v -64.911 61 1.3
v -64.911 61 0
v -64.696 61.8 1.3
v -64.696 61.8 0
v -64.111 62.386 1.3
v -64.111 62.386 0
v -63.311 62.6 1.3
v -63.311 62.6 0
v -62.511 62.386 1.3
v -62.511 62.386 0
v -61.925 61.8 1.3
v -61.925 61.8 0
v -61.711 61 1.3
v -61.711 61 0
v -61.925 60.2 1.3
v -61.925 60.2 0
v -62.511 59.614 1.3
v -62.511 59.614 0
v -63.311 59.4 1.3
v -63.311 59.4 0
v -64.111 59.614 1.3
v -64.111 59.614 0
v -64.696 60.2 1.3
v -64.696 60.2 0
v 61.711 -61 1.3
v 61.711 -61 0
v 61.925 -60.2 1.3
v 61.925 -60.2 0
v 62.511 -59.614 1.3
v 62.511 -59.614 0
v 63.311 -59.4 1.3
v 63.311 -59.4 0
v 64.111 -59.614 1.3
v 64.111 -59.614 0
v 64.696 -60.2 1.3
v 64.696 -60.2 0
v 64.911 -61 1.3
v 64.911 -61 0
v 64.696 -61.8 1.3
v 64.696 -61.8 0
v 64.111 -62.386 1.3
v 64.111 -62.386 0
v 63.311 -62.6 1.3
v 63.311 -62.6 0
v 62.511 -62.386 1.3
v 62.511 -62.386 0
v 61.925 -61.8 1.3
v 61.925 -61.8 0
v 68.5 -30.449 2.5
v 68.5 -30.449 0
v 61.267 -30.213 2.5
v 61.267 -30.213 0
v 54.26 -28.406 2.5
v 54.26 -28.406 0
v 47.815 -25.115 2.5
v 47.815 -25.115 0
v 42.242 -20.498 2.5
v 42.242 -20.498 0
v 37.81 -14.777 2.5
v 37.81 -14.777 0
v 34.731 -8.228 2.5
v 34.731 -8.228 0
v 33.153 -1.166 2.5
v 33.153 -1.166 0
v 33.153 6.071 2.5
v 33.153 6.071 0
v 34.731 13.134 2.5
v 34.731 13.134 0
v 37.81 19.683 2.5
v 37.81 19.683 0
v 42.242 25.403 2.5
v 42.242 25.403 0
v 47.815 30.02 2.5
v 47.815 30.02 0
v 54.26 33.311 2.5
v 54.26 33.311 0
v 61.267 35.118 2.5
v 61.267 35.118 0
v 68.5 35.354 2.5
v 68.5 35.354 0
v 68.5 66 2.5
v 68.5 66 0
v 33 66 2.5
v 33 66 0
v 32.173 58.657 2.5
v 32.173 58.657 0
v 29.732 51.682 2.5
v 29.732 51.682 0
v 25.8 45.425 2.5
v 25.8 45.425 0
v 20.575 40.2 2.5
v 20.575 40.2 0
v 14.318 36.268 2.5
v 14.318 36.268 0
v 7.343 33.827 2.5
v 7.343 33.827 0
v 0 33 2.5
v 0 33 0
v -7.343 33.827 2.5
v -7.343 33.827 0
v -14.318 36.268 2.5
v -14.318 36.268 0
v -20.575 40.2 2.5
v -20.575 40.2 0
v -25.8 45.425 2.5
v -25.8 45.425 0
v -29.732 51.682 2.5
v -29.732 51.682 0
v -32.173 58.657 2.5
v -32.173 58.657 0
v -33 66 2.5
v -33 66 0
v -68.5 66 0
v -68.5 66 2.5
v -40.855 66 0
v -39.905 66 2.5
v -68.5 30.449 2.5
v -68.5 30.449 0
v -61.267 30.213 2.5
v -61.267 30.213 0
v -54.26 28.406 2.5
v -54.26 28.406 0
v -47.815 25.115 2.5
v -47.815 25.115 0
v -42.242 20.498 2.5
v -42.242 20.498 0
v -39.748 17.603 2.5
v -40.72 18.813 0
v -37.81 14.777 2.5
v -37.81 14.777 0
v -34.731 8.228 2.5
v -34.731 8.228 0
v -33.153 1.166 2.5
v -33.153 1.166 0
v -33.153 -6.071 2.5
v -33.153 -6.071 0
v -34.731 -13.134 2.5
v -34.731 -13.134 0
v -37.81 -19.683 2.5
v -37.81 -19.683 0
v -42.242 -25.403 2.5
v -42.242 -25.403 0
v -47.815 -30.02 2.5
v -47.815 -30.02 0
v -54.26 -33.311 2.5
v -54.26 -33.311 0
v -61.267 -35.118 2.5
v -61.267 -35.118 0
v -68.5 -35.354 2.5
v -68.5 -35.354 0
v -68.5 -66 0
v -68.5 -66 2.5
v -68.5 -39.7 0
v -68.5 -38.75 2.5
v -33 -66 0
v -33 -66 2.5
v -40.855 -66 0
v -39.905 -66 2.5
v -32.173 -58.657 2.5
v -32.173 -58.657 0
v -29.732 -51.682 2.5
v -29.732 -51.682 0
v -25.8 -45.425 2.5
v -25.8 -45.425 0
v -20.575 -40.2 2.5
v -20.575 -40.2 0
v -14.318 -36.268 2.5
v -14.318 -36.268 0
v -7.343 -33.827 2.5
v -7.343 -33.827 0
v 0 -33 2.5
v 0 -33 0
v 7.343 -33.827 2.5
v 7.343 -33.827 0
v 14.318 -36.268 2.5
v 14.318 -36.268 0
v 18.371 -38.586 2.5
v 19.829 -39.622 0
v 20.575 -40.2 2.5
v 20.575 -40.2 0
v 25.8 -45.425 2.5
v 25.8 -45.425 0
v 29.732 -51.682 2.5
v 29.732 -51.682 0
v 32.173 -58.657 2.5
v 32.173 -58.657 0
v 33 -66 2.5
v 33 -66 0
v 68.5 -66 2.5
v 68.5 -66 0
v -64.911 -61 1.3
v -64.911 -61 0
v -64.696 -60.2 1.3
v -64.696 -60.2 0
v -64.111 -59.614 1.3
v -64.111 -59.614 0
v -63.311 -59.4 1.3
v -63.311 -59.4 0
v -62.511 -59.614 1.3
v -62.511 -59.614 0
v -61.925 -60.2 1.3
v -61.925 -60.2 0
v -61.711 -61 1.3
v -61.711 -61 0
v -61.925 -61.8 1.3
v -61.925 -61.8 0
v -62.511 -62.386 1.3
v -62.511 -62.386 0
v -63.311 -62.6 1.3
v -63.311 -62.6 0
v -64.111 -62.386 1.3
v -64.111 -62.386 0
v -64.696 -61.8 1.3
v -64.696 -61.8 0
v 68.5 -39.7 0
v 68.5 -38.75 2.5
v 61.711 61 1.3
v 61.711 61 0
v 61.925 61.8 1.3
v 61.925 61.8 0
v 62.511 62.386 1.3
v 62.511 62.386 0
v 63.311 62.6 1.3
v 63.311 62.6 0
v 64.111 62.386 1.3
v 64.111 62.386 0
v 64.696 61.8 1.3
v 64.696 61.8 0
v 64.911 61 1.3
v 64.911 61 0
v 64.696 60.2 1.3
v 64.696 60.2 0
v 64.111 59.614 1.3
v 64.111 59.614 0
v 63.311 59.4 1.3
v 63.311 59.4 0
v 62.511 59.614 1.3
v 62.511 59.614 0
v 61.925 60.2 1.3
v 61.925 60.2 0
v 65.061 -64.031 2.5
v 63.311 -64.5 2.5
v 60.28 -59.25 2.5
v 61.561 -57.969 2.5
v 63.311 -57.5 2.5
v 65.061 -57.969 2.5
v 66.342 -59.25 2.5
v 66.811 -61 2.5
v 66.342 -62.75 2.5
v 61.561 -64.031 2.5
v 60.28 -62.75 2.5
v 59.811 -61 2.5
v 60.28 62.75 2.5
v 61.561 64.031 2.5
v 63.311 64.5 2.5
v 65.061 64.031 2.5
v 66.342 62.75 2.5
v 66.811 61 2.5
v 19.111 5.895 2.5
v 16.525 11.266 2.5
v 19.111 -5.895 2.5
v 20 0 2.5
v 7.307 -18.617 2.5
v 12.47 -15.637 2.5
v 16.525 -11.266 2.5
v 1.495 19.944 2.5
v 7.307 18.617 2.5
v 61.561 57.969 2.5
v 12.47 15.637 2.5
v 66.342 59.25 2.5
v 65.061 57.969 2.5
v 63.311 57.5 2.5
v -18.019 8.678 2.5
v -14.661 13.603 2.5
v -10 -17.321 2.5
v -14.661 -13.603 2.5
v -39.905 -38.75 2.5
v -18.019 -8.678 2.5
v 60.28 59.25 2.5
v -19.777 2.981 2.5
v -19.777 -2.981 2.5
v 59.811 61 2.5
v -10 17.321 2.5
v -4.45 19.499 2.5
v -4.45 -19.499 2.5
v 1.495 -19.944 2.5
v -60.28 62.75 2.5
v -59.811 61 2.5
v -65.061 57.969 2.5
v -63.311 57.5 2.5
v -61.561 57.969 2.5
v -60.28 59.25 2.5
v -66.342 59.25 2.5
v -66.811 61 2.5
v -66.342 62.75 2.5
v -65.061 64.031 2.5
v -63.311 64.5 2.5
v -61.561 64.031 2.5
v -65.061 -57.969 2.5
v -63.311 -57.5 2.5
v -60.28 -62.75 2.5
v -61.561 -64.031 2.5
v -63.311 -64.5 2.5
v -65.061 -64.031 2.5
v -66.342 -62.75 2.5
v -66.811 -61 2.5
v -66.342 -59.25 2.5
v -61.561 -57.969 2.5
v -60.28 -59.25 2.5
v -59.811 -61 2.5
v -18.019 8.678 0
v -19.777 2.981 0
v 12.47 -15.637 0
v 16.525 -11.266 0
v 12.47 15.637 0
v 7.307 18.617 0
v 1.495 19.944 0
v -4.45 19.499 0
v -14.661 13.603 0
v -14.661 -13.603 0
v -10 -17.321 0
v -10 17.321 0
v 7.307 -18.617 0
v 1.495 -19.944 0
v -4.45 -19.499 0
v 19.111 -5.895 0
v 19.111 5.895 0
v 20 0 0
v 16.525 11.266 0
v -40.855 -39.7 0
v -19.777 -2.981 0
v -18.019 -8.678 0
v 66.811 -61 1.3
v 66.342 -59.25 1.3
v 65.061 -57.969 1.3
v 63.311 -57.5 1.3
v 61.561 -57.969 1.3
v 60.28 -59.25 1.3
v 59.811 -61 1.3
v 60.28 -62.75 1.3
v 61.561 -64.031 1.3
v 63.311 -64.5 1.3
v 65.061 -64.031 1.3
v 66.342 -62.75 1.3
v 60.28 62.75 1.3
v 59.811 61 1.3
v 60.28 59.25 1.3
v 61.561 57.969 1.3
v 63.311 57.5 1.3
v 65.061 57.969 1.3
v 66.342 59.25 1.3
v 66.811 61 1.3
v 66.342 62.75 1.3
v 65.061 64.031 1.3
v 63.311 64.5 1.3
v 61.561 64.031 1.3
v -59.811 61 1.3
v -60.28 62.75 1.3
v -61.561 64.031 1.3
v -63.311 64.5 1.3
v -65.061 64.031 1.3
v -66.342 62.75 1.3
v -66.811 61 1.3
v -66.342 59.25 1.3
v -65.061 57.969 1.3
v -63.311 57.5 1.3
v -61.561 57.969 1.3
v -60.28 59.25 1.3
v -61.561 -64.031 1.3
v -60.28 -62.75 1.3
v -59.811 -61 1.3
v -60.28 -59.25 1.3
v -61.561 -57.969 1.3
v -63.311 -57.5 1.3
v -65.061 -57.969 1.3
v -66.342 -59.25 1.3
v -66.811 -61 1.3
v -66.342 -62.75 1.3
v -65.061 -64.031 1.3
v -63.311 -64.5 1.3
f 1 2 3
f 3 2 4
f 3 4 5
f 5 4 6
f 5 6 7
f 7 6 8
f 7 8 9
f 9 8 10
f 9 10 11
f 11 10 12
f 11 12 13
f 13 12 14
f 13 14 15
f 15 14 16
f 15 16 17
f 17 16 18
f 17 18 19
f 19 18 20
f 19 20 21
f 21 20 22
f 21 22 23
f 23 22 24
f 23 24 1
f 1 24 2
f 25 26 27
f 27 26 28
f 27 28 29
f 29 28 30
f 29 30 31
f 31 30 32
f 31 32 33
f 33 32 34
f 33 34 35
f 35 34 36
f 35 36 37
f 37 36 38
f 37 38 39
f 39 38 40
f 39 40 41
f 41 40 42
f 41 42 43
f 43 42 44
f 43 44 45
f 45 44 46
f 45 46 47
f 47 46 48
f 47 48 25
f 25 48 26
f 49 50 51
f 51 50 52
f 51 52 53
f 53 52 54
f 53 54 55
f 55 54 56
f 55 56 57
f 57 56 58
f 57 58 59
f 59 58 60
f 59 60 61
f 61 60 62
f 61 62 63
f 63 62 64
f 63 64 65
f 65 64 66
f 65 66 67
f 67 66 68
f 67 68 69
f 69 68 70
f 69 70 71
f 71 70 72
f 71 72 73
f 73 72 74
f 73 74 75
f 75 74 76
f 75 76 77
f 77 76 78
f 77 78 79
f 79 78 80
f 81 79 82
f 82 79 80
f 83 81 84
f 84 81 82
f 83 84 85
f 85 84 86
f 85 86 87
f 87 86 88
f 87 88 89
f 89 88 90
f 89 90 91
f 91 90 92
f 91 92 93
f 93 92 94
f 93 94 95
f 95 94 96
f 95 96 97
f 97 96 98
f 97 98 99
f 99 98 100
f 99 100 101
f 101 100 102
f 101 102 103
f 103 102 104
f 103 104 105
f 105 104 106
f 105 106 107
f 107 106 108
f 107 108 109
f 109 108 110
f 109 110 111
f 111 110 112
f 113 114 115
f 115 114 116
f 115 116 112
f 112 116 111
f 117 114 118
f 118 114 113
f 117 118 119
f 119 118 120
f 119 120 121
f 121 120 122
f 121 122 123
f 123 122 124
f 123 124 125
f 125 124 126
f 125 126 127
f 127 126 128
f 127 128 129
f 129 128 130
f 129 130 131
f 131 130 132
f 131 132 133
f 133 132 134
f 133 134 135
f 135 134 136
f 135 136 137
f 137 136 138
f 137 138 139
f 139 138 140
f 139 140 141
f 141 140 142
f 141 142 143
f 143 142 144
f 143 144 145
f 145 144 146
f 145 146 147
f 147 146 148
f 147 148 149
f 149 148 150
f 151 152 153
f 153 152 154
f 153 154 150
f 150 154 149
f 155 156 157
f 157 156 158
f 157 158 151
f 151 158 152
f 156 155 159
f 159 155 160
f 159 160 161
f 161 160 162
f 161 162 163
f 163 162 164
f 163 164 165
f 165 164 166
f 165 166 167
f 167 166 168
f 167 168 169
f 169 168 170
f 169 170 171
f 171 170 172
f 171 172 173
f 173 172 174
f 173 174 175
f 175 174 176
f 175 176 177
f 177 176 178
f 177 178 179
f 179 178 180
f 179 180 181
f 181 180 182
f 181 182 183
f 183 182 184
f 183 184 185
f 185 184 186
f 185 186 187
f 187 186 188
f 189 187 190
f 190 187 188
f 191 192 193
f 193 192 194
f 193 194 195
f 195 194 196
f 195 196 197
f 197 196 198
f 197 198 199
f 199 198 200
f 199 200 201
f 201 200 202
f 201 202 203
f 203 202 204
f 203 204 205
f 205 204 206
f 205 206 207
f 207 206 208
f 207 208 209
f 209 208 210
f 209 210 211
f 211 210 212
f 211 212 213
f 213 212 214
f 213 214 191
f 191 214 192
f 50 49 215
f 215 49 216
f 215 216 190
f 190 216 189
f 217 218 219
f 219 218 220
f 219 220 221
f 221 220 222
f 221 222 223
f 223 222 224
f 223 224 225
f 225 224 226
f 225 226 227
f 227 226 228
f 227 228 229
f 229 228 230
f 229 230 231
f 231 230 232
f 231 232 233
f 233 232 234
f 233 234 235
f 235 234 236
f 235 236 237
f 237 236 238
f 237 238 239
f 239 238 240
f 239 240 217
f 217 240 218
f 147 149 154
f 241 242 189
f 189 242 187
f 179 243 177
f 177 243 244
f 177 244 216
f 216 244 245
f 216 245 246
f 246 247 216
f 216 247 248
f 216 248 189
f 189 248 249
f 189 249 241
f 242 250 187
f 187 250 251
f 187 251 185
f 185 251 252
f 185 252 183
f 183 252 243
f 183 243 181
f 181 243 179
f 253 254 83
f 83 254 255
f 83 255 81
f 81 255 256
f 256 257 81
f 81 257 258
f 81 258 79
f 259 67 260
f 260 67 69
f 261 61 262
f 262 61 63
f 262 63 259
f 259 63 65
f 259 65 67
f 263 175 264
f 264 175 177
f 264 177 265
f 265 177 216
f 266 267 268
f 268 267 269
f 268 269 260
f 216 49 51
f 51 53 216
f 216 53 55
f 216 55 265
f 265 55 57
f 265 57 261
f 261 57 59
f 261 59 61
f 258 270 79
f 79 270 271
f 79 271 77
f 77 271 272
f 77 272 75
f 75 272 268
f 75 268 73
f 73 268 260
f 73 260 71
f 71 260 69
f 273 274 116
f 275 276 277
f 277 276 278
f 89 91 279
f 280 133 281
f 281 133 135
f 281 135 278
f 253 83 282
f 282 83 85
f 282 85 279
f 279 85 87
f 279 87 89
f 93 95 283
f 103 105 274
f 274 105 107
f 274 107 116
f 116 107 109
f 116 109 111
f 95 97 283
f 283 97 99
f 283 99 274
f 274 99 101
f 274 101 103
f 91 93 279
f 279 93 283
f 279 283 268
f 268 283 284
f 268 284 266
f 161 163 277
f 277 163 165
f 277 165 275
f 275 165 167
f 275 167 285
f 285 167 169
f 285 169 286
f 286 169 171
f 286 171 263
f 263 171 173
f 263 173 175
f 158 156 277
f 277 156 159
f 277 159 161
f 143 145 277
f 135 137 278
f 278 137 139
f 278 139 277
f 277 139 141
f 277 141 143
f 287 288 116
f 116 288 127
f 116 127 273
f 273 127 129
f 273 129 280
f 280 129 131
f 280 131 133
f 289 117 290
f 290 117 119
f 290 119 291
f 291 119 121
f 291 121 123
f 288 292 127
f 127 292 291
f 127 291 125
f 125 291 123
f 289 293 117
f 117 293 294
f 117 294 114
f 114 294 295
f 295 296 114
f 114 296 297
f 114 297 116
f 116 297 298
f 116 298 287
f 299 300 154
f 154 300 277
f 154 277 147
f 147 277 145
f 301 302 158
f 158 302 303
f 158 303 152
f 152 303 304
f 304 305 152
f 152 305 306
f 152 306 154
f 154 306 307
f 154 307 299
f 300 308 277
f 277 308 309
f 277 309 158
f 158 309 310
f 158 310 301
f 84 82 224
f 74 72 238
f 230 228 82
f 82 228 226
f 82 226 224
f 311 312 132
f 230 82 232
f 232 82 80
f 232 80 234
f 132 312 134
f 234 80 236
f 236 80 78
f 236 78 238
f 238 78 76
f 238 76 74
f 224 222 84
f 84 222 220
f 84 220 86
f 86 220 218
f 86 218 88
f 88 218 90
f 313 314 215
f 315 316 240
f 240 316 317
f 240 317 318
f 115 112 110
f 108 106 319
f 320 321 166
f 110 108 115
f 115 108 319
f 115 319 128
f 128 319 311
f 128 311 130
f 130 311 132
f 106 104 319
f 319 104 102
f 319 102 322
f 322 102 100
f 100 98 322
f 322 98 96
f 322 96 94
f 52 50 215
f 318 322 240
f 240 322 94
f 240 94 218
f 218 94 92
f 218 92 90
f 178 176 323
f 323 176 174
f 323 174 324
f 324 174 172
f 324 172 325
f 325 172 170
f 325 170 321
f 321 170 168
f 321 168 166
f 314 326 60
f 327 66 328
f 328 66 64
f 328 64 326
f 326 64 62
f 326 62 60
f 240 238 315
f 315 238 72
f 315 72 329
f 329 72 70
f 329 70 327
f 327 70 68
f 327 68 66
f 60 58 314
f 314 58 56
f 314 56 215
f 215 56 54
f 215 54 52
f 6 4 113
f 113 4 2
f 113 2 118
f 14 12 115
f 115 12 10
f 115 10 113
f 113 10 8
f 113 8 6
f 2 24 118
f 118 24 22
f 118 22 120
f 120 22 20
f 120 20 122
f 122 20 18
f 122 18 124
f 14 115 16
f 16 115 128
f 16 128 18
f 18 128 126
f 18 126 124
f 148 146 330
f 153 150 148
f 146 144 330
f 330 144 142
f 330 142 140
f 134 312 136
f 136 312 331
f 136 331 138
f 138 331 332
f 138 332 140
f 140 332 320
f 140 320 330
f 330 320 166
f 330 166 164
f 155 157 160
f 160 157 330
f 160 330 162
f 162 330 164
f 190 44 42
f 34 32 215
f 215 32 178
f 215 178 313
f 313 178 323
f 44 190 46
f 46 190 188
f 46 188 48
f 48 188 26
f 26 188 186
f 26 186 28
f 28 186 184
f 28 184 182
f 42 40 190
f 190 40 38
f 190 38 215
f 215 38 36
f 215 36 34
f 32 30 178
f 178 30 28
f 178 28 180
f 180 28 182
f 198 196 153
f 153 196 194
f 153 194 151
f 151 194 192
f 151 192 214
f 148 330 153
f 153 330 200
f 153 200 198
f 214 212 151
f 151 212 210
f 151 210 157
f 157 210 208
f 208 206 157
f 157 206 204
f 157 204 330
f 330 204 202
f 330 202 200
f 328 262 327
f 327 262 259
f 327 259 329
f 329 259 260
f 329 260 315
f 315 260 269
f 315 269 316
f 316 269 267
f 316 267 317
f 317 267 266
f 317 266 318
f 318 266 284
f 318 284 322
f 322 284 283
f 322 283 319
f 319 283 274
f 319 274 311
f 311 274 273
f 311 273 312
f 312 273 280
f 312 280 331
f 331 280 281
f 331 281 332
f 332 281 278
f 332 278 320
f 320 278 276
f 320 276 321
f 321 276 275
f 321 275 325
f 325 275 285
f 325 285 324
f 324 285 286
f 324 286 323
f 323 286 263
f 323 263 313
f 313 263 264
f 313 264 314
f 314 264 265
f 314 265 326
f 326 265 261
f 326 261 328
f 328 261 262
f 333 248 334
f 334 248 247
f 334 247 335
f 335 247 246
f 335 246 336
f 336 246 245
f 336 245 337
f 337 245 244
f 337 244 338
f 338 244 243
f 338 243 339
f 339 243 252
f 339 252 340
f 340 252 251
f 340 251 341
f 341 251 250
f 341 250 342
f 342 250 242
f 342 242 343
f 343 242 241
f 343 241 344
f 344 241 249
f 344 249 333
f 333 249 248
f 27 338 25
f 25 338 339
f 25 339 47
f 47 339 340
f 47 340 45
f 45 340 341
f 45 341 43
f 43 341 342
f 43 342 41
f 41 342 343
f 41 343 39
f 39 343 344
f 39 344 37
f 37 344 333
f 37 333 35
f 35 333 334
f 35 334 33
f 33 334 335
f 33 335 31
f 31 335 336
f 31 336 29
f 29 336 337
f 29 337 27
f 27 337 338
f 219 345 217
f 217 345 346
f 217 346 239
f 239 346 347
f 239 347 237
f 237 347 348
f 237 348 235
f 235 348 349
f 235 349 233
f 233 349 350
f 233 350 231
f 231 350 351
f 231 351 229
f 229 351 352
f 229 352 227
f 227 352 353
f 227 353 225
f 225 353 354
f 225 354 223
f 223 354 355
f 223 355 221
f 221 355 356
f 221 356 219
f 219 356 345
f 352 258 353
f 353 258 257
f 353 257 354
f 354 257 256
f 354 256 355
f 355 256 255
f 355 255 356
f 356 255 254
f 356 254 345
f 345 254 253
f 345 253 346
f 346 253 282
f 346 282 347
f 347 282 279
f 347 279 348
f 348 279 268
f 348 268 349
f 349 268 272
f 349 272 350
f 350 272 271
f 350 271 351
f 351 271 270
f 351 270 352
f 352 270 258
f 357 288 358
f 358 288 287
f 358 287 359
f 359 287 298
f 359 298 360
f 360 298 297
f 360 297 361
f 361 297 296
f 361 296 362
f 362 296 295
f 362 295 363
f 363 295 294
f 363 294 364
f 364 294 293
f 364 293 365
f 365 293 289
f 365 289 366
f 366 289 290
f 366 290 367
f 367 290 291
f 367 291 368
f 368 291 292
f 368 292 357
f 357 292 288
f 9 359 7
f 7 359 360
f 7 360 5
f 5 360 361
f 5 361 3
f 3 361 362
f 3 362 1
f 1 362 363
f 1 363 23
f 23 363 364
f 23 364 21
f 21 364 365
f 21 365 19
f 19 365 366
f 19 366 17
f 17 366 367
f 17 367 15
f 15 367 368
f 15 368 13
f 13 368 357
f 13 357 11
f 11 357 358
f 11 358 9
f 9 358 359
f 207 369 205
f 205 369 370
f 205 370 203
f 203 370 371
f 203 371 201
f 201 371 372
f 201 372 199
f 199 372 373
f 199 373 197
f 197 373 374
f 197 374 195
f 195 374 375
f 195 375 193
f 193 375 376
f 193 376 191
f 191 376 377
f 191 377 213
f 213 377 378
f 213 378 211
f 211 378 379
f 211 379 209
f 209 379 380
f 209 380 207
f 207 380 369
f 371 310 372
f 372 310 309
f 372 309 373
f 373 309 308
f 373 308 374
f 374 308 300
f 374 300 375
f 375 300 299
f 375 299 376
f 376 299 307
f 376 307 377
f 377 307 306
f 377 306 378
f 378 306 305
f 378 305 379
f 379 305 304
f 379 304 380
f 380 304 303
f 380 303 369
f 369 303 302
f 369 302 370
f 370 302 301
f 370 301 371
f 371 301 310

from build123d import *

# Parameters (mm, degrees)
SKETCH_1_R          = 1.6
EXTRUDE_1_DEPTH     = 2.5
SKETCH_2_R          = 20
CUT_EXTRUDE_1_DEPTH = 23
SKETCH_3_R          = 3.5
CUT_EXTRUDE_2_DEPTH = 1.2


with BuildPart() as part:
    # 草图1 → 凸台-拉伸1 (new body)
    with BuildSketch(Plane.XY):
        with BuildLine():
            Line((68.5, 66), (33, 66))
            ThreePointArc((33, 66), (0, 33), (-33, 66))
            Line((-33, 66), (-68.5, 66))
            Line((-68.5, 66), (-68.5, 30.44898712))
            ThreePointArc((-68.5, 30.44898712), (-43.537948759, 21.765123634), (-32.954411074, -2.452684221))
            ThreePointArc((-32.954411074, -2.452684221), (-43.537948759, -26.670492075), (-68.5, -35.354355562))
            Line((-68.5, -35.354355562), (-68.5, -66))
            Line((-68.5, -66), (-33, -66))
            ThreePointArc((-33, -66), (0, -33), (33, -66))
            Line((33, -66), (68.5, -66))
            Line((68.5, -66), (68.5, -30.44898712))
            ThreePointArc((68.5, -30.44898712), (32.954411074, 2.452684221), (68.5, 35.354355562))
            Line((68.5, 35.354355562), (68.5, 66))
        make_face()
        with Locations((-63.310606061, -61)):
            Circle(SKETCH_1_R, mode=Mode.SUBTRACT)
        with Locations((63.310606061, -61)):
            Circle(SKETCH_1_R, mode=Mode.SUBTRACT)
        with Locations((-63.310606061, 61)):
            Circle(SKETCH_1_R, mode=Mode.SUBTRACT)
        with Locations((63.310606061, 61)):
            Circle(SKETCH_1_R, mode=Mode.SUBTRACT)
    extrude(amount=EXTRUDE_1_DEPTH)

    # 草图2 → 切除-拉伸1 (cut)
    with BuildSketch(Plane.XY.offset(2.5)):
        Circle(SKETCH_2_R)
    extrude(amount=-CUT_EXTRUDE_1_DEPTH, mode=Mode.SUBTRACT)

    # 草图3 → 切除-拉伸2 (cut)
    with BuildSketch(Plane.XY.offset(2.5)):
        with Locations((63.310606061, -61)):
            Circle(SKETCH_3_R)
        with Locations((63.310606061, 61)):
            Circle(SKETCH_3_R)
        with Locations((-63.310606061, 61)):
            Circle(SKETCH_3_R)
        with Locations((-63.310606061, -61)):
            Circle(SKETCH_3_R)
    extrude(amount=-CUT_EXTRUDE_2_DEPTH, mode=Mode.SUBTRACT)


solid = part.part
